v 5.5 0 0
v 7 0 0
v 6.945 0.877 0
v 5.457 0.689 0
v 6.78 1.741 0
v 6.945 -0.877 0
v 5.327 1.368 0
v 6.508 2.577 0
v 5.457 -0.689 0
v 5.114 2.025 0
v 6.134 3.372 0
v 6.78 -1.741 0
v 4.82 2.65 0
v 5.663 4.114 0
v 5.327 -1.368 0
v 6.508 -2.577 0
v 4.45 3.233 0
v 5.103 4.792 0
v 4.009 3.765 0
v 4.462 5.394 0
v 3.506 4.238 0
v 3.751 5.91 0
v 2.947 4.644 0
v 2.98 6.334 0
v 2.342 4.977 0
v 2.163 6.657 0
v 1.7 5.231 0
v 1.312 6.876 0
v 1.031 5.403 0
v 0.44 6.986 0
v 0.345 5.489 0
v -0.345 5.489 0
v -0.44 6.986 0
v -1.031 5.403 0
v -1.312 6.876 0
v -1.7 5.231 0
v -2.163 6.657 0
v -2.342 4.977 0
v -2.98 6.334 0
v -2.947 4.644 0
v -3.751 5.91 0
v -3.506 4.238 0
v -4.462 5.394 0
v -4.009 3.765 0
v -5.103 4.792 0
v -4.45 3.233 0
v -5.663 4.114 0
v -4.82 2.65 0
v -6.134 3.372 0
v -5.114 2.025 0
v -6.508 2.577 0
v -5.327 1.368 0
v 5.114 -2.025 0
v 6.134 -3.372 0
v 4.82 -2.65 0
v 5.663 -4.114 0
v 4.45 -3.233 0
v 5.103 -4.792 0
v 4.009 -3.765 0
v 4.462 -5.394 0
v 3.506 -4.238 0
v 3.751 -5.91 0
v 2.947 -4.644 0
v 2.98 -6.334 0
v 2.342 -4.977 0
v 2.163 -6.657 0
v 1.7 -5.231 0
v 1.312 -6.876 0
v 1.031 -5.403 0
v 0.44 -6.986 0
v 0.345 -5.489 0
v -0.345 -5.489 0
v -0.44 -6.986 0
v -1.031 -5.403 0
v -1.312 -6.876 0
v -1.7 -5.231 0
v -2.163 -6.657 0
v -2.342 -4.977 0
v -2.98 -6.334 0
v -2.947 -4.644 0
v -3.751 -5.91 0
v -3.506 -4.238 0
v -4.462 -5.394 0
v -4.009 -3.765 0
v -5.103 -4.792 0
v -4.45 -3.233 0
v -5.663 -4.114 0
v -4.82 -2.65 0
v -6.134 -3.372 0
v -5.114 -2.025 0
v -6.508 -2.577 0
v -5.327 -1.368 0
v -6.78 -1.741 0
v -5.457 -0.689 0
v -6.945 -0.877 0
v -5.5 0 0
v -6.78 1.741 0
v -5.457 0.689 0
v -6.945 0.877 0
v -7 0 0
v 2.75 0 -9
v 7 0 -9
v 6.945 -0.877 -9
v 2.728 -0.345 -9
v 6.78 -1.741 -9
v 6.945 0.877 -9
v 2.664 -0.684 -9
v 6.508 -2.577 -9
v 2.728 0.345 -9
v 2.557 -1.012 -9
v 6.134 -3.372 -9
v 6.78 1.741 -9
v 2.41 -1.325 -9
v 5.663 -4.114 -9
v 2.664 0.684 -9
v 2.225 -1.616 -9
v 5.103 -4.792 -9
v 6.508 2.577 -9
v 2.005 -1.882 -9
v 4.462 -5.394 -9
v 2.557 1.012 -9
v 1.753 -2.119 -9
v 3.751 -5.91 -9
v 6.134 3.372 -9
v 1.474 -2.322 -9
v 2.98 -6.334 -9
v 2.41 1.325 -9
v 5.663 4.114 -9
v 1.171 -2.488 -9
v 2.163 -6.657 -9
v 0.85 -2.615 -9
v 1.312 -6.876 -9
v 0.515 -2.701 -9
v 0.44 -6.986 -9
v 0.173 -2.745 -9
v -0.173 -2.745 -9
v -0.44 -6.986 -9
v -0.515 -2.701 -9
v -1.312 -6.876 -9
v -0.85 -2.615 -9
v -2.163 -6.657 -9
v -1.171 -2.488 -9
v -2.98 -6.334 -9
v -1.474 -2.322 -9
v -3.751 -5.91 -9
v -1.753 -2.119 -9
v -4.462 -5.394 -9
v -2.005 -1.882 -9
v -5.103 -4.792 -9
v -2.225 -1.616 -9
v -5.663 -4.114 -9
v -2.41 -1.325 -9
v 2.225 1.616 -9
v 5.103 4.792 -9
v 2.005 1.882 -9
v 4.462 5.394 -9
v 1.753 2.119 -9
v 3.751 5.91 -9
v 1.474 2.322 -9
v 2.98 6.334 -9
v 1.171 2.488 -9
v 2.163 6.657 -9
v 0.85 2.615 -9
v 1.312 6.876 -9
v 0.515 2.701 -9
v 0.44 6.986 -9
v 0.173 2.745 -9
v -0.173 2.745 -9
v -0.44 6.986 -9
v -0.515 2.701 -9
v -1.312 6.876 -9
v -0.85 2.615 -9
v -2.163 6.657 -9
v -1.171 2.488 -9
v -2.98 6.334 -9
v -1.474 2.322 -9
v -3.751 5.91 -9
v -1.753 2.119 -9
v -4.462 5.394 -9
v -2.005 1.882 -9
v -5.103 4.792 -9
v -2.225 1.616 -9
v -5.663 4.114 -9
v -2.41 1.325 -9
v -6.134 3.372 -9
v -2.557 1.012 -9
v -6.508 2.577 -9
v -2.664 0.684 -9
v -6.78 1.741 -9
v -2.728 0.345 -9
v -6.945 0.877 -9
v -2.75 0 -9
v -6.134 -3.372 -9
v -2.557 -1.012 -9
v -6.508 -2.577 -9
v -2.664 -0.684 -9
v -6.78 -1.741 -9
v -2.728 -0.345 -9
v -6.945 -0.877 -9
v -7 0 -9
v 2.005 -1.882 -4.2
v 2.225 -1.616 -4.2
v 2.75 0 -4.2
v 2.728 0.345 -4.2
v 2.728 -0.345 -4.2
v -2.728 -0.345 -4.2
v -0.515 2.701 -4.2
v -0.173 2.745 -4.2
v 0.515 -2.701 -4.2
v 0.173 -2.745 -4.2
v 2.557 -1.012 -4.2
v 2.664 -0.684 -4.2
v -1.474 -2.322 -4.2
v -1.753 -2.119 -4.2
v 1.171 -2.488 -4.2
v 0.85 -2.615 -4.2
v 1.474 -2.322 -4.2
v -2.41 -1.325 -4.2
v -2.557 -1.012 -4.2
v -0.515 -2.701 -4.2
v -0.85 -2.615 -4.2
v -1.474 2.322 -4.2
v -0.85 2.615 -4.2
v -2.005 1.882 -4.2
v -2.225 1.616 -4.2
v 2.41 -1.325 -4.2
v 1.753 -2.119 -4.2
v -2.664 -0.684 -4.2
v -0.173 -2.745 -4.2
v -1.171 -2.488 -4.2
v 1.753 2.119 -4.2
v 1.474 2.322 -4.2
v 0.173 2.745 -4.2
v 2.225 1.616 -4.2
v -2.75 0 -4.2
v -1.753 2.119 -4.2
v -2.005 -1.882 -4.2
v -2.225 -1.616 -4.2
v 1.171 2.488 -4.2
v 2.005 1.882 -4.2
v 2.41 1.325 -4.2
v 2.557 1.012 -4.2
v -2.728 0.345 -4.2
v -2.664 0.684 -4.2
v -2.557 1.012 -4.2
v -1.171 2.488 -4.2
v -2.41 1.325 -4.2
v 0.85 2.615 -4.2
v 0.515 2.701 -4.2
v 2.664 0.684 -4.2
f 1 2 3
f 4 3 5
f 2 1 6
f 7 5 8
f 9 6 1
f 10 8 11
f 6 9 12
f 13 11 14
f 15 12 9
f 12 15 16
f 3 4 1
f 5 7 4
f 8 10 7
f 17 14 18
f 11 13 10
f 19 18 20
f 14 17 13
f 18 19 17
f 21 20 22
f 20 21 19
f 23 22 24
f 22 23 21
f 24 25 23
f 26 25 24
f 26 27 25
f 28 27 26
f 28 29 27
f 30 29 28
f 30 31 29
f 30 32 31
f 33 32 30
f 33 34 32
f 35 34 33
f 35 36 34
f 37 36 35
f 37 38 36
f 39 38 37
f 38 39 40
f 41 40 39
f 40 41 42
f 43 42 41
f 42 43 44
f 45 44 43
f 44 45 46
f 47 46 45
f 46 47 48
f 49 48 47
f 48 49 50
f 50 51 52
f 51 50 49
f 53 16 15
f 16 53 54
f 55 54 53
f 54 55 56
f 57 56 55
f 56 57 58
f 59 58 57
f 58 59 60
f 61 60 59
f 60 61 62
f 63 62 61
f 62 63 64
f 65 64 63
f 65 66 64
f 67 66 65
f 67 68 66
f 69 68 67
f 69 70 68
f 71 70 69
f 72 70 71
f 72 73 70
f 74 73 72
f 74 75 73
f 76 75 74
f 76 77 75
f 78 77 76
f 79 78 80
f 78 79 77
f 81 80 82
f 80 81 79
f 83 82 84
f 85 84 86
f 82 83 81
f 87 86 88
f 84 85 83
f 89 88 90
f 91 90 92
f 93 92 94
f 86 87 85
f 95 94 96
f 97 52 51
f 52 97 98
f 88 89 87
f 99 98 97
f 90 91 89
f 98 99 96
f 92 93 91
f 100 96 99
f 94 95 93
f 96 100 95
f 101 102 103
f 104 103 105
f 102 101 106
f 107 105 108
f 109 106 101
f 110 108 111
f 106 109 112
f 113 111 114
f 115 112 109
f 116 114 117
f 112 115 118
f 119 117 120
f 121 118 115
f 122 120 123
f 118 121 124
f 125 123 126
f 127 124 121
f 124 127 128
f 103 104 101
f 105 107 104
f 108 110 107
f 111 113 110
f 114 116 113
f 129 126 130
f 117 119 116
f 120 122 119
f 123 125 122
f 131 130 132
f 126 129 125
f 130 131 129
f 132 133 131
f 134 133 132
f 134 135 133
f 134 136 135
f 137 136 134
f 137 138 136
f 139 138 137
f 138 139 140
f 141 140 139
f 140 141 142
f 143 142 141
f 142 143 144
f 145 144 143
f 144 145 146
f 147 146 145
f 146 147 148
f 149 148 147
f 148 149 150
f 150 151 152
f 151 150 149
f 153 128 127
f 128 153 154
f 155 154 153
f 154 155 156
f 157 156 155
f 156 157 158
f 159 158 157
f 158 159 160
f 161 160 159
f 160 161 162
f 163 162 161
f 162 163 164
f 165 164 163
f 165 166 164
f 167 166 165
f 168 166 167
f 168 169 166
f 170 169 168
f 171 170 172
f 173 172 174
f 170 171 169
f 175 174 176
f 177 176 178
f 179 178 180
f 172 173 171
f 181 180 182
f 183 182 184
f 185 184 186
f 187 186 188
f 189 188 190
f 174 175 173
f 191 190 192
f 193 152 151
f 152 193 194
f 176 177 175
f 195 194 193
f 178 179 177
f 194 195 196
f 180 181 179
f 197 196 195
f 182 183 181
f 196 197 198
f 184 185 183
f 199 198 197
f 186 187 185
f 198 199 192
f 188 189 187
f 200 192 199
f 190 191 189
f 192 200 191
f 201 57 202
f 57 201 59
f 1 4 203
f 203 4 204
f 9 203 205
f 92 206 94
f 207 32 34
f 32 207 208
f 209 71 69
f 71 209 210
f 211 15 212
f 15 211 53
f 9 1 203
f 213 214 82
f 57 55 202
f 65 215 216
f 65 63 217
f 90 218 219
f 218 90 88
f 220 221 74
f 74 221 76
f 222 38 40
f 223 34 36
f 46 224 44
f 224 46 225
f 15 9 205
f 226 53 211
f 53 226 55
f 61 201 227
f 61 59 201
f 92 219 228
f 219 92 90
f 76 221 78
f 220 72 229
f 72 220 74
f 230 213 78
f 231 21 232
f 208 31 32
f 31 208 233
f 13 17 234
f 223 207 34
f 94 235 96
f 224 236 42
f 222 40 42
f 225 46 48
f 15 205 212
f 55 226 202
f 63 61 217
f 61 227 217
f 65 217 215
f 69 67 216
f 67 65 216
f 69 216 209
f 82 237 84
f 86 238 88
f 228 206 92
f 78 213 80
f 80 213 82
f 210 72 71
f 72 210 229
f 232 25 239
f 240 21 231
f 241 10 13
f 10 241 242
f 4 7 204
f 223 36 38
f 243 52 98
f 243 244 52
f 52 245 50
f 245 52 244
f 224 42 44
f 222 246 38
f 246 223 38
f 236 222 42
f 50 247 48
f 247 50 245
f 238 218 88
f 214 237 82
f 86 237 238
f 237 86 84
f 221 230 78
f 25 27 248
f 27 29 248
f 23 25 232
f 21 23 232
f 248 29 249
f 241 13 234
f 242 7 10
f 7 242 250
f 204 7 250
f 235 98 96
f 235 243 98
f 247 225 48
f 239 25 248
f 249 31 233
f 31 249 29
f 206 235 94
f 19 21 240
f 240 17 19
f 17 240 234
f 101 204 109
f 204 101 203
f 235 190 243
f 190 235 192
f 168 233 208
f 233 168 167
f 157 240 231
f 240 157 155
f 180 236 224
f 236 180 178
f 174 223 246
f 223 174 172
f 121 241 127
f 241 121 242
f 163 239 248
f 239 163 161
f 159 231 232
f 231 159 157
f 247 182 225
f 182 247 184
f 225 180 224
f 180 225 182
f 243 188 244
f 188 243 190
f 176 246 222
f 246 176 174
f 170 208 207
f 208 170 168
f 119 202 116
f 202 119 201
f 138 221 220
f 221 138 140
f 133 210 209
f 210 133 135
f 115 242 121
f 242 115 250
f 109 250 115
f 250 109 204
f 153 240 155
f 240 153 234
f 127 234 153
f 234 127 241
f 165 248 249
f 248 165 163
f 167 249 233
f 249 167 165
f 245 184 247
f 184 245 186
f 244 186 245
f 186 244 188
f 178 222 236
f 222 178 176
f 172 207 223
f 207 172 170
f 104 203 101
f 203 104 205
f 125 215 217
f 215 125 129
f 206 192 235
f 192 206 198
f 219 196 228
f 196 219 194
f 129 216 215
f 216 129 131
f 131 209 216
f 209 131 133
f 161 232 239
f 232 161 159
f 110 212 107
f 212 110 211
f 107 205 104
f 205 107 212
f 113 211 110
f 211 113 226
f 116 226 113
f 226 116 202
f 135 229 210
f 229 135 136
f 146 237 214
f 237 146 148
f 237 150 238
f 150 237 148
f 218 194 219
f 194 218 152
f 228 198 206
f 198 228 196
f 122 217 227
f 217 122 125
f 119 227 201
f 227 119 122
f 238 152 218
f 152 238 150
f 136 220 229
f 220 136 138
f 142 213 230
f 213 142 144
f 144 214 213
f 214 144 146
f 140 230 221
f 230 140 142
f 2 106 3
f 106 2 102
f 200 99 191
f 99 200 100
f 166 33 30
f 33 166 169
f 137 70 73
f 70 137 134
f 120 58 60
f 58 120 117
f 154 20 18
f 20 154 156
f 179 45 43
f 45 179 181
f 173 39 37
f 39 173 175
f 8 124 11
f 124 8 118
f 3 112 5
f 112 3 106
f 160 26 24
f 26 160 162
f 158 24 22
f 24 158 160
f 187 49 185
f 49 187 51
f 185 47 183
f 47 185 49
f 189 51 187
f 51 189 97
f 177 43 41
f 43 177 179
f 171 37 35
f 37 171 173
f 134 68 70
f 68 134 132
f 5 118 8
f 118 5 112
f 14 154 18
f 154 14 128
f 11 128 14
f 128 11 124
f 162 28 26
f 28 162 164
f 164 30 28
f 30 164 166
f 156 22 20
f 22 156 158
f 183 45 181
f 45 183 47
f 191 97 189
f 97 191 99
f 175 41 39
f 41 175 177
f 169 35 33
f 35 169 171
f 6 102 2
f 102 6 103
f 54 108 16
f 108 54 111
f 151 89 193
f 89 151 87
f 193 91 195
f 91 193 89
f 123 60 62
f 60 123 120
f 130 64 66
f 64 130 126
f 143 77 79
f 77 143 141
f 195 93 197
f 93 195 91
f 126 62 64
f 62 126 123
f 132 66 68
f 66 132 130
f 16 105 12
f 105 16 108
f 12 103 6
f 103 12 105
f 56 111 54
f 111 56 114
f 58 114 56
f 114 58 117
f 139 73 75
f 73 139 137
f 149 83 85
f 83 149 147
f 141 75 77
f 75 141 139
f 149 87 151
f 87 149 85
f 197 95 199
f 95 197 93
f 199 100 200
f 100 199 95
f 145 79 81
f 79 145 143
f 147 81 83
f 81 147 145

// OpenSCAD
$fn = 50;


difference() {
	union() {
		translate(v = [0, 0, -9.0000000000]) {
			cylinder(h = 9, r = 7.0000000000);
		}
	}
	union() {
		translate(v = [0, 0, 0]) {
			rotate(a = [0, 0, 0]) {
				difference() {
					union() {
						translate(v = [0, 0, -9.0000000000]) {
							cylinder(h = 9, r = 2.2500000000);
						}
						translate(v = [0, 0, -4.2000000000]) {
							cylinder(h = 4.2000000000, r1 = 2.7500000000, r2 = 5.5000000000);
						}
						translate(v = [0, 0, -9.0000000000]) {
							cylinder(h = 9, r = 2.7500000000);
						}
						translate(v = [0, 0, -9.0000000000]) {
							cylinder(h = 9, r = 2.2500000000);
						}
					}
					union();
				}
			}
		}
	}
}
